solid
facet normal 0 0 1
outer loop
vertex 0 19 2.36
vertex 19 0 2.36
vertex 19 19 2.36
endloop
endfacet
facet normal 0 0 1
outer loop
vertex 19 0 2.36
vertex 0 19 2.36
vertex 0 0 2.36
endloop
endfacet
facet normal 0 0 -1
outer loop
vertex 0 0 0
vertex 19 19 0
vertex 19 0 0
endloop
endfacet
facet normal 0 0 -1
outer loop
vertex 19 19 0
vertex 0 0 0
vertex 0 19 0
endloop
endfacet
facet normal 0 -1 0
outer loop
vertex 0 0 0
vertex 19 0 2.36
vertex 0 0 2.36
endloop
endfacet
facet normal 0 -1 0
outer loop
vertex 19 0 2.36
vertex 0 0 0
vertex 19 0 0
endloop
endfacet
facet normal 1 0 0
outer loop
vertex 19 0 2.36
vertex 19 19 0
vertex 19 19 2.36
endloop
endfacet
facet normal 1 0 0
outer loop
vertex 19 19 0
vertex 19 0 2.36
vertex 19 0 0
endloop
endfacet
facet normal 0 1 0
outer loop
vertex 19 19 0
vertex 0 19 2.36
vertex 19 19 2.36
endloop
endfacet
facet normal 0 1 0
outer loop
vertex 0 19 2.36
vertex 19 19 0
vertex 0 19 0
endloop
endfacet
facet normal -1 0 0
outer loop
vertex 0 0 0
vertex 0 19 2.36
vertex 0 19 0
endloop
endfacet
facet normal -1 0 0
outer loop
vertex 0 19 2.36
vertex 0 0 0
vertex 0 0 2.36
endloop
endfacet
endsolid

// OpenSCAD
/* Warning, this is a very basic generator with a lot of approximation 
input data : [PBGA, ACA, 19x19x2.36mm, 289, , A, C04-01087A]
generated by com.zoubworld.electronics.cad.model3d.Basic
Date : Sun Feb 15 10:50:49 CET 2026
*/

//body
color("black")
translate([0,0,0])
cube([19.0,19.0,2.36], center=false);
